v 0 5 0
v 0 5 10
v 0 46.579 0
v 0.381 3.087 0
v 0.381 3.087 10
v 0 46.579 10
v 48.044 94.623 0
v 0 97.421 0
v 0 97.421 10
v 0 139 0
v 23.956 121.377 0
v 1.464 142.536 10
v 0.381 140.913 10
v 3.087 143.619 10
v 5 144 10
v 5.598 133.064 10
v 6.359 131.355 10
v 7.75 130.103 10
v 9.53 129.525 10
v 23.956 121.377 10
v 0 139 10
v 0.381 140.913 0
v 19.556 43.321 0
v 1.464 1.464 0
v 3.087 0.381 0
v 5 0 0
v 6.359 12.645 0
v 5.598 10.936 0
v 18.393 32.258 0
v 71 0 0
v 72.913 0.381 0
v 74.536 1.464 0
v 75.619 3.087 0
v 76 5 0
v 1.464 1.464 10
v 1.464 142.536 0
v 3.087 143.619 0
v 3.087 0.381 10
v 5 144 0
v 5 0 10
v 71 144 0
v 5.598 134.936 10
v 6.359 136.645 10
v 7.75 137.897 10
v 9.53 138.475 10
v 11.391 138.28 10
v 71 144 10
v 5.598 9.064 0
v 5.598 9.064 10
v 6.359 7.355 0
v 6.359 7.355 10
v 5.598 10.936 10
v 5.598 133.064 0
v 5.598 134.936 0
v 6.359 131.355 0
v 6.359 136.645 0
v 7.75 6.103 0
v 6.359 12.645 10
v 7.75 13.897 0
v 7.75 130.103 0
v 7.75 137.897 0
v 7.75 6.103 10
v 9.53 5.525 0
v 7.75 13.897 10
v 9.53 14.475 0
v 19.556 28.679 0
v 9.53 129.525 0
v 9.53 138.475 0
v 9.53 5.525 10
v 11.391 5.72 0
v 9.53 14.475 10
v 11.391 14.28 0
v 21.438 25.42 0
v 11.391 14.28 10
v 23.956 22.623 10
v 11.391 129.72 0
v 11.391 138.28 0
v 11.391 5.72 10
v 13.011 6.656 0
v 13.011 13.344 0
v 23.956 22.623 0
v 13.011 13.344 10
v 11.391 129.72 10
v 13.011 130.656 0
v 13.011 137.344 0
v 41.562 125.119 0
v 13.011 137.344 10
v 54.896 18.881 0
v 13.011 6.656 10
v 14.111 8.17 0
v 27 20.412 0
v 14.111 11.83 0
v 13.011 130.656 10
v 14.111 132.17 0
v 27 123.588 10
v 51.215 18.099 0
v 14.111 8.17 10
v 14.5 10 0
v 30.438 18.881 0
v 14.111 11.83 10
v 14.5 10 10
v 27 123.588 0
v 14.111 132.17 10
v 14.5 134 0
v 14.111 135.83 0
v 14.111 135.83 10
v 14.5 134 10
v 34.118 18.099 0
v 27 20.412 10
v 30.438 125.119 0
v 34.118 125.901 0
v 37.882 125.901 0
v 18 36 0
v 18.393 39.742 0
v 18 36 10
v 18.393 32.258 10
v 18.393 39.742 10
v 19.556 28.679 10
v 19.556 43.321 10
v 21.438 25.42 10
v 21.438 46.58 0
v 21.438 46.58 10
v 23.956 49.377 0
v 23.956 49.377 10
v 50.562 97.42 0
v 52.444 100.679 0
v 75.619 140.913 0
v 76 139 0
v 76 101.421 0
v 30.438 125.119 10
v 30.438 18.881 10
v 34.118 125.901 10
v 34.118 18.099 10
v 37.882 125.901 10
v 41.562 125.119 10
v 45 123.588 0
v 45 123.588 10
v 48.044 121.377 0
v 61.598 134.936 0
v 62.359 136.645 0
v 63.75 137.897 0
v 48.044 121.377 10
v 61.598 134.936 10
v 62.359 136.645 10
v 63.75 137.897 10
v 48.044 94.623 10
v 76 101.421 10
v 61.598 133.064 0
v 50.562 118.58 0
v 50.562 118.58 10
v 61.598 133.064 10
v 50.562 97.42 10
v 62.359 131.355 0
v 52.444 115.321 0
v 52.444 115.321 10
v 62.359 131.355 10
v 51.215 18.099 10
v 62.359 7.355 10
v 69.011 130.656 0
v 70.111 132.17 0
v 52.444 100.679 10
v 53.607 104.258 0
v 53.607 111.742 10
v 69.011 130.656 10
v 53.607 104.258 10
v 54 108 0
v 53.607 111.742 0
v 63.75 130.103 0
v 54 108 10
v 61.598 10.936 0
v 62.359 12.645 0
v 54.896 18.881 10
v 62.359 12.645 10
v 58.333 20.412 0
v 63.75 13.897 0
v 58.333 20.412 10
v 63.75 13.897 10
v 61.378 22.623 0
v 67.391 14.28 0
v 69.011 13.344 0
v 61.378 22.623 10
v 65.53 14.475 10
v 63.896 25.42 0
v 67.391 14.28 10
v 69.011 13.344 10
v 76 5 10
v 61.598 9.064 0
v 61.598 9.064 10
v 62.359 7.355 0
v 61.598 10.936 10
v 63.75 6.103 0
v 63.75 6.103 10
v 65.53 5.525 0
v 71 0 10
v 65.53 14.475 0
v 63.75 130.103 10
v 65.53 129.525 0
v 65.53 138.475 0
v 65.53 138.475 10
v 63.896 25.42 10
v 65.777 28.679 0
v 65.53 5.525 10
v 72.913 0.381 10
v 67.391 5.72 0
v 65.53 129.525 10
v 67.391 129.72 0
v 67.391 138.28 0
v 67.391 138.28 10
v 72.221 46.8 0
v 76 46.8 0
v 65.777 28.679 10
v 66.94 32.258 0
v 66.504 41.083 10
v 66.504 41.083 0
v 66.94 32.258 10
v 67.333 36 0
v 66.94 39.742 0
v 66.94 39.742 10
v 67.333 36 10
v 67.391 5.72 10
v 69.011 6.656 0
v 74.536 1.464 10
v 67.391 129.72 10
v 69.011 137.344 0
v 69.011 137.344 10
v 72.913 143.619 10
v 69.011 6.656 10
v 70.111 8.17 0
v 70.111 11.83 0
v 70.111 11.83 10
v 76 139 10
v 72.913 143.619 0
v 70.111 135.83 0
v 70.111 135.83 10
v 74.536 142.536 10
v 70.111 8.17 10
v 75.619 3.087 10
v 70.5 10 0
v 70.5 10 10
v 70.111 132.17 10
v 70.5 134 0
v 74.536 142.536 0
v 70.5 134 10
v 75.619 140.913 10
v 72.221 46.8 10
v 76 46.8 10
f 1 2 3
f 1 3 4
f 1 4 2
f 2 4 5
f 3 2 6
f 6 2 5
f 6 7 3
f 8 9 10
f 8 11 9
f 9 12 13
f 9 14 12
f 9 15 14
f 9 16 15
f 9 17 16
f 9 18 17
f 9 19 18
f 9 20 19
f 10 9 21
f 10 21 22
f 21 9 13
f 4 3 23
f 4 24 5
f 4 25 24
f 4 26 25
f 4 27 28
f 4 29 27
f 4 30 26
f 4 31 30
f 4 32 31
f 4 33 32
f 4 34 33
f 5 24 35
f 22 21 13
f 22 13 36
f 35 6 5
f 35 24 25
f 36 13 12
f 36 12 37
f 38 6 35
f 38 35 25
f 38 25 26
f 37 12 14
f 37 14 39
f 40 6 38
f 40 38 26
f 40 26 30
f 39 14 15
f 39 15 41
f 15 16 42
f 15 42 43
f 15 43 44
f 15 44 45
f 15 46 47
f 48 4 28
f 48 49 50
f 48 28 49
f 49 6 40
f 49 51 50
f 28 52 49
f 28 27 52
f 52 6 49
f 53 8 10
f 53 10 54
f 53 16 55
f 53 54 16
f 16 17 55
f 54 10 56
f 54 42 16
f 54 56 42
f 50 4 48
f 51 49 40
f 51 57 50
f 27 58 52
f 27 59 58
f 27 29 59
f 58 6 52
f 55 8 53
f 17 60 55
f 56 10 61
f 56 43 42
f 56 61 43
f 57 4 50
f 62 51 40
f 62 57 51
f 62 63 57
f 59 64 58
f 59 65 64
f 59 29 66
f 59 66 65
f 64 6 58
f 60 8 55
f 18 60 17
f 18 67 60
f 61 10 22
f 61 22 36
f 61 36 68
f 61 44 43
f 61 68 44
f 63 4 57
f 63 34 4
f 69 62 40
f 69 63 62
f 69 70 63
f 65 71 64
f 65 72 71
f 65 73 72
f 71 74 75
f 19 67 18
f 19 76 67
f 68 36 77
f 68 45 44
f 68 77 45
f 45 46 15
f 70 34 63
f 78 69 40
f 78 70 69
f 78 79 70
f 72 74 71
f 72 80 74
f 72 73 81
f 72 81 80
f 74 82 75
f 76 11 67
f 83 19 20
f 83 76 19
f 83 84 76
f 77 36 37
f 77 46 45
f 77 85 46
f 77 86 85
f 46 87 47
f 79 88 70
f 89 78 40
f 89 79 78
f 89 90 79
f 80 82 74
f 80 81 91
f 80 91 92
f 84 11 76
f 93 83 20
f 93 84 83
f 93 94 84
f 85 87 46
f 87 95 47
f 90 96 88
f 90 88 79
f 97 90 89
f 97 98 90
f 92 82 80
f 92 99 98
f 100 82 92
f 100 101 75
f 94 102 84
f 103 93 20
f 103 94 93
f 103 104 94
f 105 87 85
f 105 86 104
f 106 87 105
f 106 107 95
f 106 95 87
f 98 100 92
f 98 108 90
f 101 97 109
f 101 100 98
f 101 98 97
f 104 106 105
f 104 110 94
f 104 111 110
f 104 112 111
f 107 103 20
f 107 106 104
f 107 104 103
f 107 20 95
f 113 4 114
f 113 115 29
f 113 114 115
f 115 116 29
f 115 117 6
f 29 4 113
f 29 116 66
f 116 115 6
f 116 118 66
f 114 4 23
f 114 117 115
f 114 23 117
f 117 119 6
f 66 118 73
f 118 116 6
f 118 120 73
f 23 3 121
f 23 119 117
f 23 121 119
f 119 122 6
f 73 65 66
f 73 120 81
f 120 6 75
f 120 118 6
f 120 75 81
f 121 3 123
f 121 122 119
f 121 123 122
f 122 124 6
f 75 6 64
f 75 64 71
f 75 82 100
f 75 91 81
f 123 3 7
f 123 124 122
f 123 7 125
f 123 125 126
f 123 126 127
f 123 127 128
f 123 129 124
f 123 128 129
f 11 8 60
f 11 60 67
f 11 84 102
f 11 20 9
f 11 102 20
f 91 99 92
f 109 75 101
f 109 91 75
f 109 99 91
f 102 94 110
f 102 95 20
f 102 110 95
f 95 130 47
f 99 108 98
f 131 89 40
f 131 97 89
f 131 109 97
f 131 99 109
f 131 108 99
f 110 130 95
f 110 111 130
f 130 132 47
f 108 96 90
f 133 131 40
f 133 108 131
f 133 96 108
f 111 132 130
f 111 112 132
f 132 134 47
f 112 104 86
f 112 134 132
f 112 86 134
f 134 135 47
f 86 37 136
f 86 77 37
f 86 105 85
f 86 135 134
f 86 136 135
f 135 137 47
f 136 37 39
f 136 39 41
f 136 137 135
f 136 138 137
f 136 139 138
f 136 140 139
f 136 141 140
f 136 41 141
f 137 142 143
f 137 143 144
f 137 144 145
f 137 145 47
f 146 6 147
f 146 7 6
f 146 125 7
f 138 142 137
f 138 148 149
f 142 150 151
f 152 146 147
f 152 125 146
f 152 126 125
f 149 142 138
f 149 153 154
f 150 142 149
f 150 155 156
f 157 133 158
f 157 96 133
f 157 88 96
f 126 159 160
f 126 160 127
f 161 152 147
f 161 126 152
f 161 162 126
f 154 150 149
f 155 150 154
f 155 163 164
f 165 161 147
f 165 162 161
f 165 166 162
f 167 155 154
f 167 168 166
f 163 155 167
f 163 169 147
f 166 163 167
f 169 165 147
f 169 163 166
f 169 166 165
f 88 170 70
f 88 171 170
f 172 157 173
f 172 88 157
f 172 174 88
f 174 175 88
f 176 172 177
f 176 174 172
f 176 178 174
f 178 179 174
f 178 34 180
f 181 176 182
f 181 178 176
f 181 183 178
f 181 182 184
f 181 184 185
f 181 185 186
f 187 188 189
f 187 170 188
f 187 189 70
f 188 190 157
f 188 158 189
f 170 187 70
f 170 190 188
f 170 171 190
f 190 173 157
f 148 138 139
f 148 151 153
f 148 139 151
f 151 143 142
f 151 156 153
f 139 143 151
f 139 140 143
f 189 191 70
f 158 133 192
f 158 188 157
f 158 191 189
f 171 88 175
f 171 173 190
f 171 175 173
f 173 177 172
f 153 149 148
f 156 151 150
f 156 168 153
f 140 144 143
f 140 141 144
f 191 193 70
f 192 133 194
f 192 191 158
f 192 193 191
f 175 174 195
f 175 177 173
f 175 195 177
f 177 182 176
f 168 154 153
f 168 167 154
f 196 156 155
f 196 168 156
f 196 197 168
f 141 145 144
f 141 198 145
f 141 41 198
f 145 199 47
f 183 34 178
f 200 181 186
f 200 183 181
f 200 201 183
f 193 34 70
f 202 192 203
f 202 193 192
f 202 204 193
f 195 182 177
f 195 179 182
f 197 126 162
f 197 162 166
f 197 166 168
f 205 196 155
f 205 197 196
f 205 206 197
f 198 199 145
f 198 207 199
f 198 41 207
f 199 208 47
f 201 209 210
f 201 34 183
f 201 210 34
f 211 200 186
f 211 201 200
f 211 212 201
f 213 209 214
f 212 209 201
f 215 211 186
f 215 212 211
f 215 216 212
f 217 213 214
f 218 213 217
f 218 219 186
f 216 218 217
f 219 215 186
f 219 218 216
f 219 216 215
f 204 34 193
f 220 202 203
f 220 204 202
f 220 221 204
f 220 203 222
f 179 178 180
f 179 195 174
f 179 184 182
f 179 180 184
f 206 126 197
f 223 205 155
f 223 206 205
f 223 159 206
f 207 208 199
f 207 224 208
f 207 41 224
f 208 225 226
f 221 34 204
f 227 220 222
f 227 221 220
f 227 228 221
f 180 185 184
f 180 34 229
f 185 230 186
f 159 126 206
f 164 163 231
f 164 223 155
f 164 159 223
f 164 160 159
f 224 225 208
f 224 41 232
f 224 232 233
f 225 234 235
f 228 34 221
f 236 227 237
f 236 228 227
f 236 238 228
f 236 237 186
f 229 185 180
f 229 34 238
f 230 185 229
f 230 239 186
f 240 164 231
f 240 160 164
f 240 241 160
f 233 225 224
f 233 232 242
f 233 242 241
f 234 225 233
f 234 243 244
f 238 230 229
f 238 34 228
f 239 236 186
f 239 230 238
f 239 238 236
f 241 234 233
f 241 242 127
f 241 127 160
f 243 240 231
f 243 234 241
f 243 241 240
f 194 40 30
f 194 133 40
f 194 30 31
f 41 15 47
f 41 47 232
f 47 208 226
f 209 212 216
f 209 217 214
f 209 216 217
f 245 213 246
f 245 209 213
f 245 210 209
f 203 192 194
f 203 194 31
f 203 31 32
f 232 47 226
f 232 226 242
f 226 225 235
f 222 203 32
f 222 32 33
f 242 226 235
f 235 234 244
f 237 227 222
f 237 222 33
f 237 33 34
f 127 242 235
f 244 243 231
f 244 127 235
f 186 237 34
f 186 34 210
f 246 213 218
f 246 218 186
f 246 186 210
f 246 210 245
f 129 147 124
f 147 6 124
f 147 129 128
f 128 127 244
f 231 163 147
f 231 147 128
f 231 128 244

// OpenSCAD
hole_diameter  = 36;
wall_width     = 20;
thickness      =  5;
rounded_corner =  5;

module minkowski_cube() {
    translate( [ rounded_corner, rounded_corner, 0 ] )
    minkowski() {
        cube( [ hole_diameter + 2*wall_width - 2*rounded_corner, 4*hole_diameter - 2*rounded_corner, thickness ] );
        cylinder( r=rounded_corner, h=thickness );
    }
}

module cylinder_hull(diameter, height, coord1, coord2) {
    hull() {
        translate( coord1 ) cylinder( d = diameter, h = height );
        translate( coord2 ) cylinder( d = diameter, h = height );
    }
}

difference() {
    minkowski_cube();
    translate( [ hole_diameter, hole_diameter, -thickness] )
        cylinder_hull(
            diameter = hole_diameter,
            height = 4*thickness,
            coord1 = [0, 0, 0],
            coord2 = [ hole_diameter+wall_width, hole_diameter+wall_width, 0 ]
        );
    translate( [ hole_diameter, 3*hole_diameter, -thickness] )
        rotate( [0, 0, 180] )
            cylinder_hull(
                diameter = hole_diameter,
                height = 4*thickness,
                coord1 = [0, 0, 0],
                coord2 = [ hole_diameter+wall_width, hole_diameter+wall_width, 0 ]
            );
    translate( [hole_diameter, hole_diameter, -thickness] )
        cylinder_hull(
            diameter = hole_diameter,
            height = 4 * thickness,
            coord1 = [0, 0, 0],
            coord2 = [(2/3)*wall_width, 0, 0]
        );
    
    //less sharp tip
    translate( [ hole_diameter + wall_width - 2*rounded_corner, 1.3*hole_diameter, -thickness ] )
    cube( [2*wall_width, wall_width, 4*thickness] );
    
    //small holes to tie:
    translate( [ 0.5*wall_width, 0.5*wall_width, -thickness ]) cylinder( d = (1/4)*hole_diameter, h = 4*thickness );
    translate( [ hole_diameter + 1.5*wall_width, 0.5*wall_width, -thickness ]) cylinder( d = (1/4)*hole_diameter, h = 4*thickness );
    translate( [ 0.5*wall_width, 4*hole_diameter - 0.5*wall_width, -thickness ]) cylinder( d = (1/4)*hole_diameter, h = 4*thickness );
    translate( [ hole_diameter + 1.5*wall_width, 4*hole_diameter - 0.5*wall_width, -thickness ]) cylinder( d = (1/4)*hole_diameter, h = 4*thickness );

}
